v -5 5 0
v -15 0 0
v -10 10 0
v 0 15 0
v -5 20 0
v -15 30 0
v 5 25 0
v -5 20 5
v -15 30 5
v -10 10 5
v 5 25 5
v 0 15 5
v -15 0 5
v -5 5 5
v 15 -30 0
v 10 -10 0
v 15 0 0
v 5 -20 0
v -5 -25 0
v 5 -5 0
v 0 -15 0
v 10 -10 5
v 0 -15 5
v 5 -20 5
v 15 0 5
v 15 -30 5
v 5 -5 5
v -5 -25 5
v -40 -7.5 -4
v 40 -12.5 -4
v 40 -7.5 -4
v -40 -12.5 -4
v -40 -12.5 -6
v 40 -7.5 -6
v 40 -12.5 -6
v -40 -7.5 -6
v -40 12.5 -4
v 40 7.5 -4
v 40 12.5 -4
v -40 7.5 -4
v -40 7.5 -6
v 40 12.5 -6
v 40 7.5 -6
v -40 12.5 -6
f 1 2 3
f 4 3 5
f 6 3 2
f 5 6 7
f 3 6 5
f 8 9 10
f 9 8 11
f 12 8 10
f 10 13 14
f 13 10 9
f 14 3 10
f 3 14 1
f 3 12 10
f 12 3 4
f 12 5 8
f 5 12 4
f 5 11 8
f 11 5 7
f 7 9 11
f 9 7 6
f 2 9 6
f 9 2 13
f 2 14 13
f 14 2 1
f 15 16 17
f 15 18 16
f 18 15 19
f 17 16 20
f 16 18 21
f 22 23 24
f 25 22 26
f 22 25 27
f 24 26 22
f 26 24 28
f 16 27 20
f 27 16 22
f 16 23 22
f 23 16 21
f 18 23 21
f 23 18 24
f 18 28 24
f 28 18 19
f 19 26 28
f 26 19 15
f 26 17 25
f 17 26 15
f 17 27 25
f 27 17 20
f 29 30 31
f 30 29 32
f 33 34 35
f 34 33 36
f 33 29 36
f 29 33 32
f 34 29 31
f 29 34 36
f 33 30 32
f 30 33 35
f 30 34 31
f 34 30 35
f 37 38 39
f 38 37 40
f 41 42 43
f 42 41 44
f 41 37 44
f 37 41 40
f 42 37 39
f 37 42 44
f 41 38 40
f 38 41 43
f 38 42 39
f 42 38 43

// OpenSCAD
// Lightning-shaped blade module
module lightning_shaped_blade() {
    linear_extrude(height = 5)  // Extrude the 2D profile to create a 3D shape
    polygon(points = [
        [0, 0], [10, 5], [5, 10], [15, 15], [10, 20], [20, 25], [0, 30]
    ]);
}

// Flat elongated piece module
module flat_elongated_piece(length = 40, width = 5, thickness = 2) {
    cube([length, width, thickness], center = true);
}

// Layer 1: Lightning-shaped blades
module layer_1() {
    translate([-15, 0, 0]) rotate([0, 0, 0]) lightning_shaped_blade();
    translate([15, 0, 0]) rotate([0, 0, 180]) lightning_shaped_blade();
}

// Layer 2: Flat elongated pieces
module layer_2() {
    translate([-20, -10, -5]) flat_elongated_piece();
    translate([20, -10, -5]) flat_elongated_piece();
    translate([-20, 10, -5]) flat_elongated_piece();
    translate([20, 10, -5]) flat_elongated_piece();
}

// Combine all layers to form the final model
module flexible_coupling() {
    layer_1();
    layer_2();
}

// Render the model
flexible_coupling();
